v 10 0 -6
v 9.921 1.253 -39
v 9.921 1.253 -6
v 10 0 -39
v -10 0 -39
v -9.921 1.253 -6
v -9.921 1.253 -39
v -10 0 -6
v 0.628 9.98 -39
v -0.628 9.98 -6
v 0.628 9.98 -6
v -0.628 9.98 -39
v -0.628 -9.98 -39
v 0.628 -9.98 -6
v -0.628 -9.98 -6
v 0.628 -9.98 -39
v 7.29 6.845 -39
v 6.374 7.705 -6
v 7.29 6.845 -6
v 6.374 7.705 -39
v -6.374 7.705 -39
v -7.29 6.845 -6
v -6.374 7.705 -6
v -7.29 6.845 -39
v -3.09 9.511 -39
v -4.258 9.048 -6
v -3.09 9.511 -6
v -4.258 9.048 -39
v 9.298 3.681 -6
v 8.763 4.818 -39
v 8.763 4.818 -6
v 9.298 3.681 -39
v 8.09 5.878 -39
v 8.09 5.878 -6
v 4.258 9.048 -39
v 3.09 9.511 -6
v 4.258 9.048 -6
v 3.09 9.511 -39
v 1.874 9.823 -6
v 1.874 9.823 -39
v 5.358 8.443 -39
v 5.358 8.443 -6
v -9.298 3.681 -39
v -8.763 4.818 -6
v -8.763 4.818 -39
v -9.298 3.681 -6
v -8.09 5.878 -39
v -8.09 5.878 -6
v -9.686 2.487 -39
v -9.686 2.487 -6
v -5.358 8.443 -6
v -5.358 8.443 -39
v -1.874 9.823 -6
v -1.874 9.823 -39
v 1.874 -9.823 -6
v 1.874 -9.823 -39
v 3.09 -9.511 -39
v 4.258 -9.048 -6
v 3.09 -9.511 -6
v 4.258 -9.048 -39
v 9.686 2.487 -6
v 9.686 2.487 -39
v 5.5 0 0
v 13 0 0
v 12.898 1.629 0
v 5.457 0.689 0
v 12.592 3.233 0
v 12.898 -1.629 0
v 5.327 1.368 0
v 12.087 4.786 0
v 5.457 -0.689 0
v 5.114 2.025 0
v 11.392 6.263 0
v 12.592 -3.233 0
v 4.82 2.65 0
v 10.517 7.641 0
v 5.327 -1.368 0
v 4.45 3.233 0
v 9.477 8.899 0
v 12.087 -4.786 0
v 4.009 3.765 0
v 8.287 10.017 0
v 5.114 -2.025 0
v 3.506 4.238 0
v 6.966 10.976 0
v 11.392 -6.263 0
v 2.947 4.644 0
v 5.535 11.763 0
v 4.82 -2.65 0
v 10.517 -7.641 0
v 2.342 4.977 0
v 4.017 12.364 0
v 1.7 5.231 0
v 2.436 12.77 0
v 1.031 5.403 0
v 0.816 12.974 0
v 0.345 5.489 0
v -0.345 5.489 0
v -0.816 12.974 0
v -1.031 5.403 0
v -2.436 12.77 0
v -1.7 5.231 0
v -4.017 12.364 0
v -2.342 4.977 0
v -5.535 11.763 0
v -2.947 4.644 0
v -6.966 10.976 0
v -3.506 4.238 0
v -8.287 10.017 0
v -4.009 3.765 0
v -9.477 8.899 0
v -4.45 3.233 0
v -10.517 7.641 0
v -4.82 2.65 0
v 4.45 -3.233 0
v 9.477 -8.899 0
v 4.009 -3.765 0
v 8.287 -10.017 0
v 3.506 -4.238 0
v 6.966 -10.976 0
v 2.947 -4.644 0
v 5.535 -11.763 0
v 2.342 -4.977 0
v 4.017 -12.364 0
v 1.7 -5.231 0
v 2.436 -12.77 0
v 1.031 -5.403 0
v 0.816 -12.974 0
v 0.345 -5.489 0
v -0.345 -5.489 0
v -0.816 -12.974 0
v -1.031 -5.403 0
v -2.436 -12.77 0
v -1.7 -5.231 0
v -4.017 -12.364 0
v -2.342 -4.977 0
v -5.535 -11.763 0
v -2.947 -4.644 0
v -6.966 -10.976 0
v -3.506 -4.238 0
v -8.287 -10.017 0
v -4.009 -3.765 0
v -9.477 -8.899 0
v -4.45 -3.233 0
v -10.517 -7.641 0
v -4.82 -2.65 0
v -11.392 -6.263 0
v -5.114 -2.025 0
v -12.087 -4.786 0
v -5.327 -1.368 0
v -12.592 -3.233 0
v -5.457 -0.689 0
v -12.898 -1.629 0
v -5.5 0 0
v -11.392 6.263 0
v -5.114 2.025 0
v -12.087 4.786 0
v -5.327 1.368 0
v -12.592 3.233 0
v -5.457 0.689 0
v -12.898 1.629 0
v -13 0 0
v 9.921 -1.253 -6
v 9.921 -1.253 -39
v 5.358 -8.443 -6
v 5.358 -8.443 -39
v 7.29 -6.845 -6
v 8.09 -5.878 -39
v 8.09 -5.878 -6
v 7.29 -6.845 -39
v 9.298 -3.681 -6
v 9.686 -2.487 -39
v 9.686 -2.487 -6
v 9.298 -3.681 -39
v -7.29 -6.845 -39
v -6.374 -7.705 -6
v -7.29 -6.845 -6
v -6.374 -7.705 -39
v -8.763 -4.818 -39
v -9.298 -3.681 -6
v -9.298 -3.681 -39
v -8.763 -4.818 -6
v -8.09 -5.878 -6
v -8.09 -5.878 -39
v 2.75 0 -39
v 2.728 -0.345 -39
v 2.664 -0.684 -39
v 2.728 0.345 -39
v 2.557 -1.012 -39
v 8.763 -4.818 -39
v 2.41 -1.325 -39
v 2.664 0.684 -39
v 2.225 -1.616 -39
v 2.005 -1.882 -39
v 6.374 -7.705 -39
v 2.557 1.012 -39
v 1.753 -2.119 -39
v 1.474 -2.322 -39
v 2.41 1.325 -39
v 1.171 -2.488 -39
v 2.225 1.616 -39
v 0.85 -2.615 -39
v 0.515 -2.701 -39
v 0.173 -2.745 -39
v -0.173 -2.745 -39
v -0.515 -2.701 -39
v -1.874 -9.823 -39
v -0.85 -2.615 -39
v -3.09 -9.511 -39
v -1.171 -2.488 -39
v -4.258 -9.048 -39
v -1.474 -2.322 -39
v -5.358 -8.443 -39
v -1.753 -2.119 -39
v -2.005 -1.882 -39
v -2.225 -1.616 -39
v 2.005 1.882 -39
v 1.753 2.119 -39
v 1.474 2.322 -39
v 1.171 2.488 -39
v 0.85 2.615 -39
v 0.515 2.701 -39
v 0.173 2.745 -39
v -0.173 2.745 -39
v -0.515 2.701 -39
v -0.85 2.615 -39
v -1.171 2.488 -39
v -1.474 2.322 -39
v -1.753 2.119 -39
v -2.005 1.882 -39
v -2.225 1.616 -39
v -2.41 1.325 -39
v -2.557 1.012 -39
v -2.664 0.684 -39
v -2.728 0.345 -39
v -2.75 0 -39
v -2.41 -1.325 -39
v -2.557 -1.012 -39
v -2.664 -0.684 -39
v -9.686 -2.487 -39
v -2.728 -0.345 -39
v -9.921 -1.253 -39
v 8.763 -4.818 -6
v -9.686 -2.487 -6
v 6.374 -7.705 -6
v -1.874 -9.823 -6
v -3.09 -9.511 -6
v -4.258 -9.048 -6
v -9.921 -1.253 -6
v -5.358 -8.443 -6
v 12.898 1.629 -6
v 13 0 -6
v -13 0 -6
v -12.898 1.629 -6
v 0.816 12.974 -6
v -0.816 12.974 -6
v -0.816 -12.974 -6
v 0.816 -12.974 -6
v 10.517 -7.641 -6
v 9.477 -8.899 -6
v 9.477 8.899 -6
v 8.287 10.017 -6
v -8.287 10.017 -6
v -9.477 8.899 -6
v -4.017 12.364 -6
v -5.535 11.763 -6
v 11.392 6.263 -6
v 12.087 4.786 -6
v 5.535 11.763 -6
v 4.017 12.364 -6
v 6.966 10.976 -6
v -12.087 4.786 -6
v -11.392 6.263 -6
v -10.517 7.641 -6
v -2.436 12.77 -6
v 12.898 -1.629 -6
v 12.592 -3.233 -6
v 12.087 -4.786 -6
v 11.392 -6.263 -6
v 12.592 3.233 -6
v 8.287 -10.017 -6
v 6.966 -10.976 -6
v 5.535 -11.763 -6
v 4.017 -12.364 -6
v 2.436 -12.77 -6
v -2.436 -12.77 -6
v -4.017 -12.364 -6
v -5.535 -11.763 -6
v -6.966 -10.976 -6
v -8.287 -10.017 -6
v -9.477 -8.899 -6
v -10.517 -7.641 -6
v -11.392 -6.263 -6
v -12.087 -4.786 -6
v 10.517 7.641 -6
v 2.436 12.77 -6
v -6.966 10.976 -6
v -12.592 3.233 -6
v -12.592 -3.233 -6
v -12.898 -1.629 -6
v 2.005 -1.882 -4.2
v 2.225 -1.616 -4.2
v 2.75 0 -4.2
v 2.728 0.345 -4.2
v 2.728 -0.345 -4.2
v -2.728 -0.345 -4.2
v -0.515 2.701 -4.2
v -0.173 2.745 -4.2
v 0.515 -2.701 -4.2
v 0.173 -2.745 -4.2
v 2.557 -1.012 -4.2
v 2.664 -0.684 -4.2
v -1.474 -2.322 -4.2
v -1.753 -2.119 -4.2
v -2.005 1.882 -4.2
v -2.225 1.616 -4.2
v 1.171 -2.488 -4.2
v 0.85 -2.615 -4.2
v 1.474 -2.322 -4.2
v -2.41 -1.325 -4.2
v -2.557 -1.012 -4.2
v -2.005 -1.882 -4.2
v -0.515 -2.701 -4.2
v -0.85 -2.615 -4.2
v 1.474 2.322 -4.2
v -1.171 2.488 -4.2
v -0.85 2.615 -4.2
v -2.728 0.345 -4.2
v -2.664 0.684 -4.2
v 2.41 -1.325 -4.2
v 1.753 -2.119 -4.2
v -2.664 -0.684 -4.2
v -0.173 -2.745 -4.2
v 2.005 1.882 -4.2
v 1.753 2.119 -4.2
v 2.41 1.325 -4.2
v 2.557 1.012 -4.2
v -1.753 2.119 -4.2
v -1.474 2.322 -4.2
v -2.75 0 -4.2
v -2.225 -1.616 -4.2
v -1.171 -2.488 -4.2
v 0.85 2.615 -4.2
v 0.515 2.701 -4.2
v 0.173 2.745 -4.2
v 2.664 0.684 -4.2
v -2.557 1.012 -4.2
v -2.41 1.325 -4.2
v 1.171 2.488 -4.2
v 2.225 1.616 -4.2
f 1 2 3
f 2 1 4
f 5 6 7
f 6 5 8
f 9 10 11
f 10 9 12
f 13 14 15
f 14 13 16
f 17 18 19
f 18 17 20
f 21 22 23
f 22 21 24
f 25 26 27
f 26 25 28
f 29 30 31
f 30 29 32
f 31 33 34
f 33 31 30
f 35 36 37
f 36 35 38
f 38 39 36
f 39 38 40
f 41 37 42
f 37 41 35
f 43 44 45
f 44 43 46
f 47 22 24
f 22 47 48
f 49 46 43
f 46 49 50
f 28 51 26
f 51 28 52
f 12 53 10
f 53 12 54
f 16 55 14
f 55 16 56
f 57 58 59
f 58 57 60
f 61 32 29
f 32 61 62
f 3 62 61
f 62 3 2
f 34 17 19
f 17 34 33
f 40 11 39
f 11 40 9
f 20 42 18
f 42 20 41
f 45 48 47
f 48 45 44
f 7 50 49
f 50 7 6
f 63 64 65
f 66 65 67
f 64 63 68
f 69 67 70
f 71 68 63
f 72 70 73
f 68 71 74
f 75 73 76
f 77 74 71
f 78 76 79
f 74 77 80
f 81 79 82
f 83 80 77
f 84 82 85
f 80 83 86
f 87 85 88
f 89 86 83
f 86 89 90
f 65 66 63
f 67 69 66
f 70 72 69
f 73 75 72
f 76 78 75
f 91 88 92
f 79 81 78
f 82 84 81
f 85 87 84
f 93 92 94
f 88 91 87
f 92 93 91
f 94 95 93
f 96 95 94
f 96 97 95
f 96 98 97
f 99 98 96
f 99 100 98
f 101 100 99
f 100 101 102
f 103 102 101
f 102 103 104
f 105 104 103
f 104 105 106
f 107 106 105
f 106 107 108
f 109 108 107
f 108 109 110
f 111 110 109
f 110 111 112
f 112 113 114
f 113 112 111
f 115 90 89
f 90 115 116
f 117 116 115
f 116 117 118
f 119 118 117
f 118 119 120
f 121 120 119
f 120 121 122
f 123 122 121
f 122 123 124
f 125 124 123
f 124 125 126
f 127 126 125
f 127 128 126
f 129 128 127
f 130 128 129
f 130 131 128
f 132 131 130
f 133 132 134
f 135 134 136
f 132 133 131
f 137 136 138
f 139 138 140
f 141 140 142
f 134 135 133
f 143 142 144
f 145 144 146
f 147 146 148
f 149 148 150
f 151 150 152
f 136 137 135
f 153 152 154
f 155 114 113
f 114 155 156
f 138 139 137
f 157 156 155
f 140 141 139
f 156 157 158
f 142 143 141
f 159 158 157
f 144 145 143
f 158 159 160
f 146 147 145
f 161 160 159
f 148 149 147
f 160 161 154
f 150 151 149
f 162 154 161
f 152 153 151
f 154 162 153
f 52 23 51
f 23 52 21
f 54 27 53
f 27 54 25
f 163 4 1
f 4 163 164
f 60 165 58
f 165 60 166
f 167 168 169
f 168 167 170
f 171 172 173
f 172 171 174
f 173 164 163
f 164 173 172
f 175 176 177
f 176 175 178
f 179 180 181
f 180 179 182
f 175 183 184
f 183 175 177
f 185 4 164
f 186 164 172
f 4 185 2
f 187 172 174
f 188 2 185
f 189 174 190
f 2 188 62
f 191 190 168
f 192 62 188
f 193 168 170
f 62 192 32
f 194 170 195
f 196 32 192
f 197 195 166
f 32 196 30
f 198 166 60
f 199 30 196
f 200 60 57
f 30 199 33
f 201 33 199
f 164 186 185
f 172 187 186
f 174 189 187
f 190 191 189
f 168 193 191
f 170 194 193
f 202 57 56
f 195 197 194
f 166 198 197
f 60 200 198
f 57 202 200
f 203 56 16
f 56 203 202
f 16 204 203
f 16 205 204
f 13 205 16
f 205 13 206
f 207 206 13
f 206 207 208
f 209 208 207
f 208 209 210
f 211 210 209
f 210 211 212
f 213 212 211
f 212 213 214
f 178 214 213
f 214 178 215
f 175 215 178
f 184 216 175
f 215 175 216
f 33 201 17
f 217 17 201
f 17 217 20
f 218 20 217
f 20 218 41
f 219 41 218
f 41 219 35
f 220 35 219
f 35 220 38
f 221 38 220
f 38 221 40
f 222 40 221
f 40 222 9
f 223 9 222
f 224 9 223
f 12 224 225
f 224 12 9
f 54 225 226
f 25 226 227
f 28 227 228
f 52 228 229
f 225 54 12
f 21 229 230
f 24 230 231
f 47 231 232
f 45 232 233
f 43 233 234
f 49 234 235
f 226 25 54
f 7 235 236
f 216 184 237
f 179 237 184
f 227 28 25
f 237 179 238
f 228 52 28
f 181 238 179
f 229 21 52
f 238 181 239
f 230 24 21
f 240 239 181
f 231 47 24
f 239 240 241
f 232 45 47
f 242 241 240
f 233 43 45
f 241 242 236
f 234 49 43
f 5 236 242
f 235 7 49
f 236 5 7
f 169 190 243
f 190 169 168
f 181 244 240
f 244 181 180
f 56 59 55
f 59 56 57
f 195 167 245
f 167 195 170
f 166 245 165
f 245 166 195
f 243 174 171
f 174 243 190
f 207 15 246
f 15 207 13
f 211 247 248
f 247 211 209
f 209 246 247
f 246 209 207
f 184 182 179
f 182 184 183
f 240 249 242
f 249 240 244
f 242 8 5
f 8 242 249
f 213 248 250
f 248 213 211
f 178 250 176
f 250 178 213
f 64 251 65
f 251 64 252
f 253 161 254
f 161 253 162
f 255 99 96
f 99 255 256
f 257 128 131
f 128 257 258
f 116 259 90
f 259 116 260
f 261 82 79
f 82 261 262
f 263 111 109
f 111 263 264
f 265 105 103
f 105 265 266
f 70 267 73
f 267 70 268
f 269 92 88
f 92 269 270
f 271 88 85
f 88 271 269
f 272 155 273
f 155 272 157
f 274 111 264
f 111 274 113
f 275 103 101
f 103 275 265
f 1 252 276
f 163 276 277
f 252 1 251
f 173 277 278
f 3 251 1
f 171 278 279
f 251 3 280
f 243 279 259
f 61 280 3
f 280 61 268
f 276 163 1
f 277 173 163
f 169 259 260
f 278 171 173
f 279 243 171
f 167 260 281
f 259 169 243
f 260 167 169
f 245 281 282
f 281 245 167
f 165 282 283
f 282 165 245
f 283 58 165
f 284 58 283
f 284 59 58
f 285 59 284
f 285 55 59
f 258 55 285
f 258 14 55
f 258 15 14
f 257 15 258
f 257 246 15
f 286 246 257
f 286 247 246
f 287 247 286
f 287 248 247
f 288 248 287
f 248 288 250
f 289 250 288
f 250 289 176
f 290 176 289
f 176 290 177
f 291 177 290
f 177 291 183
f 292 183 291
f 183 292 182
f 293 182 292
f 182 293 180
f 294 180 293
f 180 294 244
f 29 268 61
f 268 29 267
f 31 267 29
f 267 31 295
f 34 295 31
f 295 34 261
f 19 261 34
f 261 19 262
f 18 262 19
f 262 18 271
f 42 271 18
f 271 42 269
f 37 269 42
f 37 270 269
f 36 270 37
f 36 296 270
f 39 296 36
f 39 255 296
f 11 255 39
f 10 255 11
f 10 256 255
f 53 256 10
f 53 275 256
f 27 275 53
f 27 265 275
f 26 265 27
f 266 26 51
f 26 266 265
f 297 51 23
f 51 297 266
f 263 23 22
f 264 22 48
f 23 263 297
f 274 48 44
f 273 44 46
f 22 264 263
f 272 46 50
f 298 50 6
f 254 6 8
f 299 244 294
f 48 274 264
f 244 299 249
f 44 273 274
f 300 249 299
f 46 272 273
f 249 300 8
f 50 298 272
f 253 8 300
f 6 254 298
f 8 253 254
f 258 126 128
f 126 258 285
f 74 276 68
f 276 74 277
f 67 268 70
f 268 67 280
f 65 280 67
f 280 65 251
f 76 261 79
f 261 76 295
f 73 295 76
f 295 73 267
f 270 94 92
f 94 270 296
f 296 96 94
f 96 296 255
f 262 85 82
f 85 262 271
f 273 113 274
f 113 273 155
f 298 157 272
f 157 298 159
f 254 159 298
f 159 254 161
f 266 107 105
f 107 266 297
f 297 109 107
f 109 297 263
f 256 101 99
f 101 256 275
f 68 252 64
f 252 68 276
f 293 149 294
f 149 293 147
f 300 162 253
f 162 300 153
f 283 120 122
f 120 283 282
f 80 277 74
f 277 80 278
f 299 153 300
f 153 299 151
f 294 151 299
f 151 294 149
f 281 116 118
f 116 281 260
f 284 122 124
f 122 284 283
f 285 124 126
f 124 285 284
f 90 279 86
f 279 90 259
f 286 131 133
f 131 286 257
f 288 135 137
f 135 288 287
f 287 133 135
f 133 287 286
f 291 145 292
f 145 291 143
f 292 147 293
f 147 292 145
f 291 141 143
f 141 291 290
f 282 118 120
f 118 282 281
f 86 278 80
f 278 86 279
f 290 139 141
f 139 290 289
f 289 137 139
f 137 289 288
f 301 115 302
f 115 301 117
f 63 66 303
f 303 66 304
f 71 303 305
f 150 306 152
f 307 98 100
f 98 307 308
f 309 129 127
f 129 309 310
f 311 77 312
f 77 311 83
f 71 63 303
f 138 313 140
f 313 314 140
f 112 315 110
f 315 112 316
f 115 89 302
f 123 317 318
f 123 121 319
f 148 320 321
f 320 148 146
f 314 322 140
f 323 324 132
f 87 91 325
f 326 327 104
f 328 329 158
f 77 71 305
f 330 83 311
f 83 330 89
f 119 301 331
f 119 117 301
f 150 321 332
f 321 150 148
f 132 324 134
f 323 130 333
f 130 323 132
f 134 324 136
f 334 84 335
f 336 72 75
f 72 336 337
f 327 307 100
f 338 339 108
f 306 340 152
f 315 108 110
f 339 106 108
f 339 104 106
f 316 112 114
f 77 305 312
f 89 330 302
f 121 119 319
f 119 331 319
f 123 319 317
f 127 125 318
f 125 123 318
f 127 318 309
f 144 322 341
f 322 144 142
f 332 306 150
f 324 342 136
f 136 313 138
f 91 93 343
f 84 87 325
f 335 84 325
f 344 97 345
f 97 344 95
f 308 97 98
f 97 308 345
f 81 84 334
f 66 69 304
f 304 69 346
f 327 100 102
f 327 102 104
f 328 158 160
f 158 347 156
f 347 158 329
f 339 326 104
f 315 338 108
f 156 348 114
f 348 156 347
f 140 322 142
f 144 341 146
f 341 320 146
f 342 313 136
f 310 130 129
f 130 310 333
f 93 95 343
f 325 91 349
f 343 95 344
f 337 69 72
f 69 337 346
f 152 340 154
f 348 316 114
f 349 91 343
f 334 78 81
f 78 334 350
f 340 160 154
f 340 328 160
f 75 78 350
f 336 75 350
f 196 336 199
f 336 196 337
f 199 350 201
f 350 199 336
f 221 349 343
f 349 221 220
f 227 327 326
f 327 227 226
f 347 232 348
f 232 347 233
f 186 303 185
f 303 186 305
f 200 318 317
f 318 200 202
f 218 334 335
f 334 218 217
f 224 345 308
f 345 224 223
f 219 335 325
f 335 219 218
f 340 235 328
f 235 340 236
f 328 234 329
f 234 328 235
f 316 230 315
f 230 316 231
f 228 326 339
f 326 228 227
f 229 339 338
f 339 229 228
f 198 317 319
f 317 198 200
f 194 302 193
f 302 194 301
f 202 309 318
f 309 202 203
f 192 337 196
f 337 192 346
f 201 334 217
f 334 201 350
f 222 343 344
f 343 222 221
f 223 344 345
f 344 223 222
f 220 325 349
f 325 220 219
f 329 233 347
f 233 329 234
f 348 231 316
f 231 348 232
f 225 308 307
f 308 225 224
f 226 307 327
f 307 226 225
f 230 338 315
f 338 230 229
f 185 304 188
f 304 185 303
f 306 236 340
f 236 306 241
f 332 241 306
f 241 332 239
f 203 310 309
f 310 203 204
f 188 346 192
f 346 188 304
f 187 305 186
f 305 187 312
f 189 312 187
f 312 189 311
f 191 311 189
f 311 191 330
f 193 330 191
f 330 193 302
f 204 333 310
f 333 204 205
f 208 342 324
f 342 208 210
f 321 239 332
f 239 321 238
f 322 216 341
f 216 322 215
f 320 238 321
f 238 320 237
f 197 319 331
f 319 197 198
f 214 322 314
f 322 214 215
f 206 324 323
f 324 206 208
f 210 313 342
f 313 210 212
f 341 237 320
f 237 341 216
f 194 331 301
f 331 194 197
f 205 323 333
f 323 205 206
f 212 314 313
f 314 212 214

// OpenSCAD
$fn = 50;


difference() {
	union() {
		translate(v = [0, 0, -39.0000000000]) {
			cylinder(h = 39, r = 10.0000000000);
		}
		translate(v = [0, 0, -6.0000000000]) {
			cylinder(h = 6, r = 13.0000000000);
		}
	}
	union() {
		translate(v = [0, 0, 0]) {
			rotate(a = [0, 0, 0]) {
				difference() {
					union() {
						#translate(v = [0, 0, -39.0000000000]) {
							cylinder(h = 39, r = 2.2500000000);
						}
						#translate(v = [0, 0, -4.2000000000]) {
							cylinder(h = 4.2000000000, r1 = 2.7500000000, r2 = 5.5000000000);
						}
						#translate(v = [0, 0, -39.0000000000]) {
							cylinder(h = 39, r = 2.7500000000);
						}
						#translate(v = [0, 0, -39.0000000000]) {
							cylinder(h = 39, r = 2.2500000000);
						}
					}
					union();
				}
			}
		}
	}
}
